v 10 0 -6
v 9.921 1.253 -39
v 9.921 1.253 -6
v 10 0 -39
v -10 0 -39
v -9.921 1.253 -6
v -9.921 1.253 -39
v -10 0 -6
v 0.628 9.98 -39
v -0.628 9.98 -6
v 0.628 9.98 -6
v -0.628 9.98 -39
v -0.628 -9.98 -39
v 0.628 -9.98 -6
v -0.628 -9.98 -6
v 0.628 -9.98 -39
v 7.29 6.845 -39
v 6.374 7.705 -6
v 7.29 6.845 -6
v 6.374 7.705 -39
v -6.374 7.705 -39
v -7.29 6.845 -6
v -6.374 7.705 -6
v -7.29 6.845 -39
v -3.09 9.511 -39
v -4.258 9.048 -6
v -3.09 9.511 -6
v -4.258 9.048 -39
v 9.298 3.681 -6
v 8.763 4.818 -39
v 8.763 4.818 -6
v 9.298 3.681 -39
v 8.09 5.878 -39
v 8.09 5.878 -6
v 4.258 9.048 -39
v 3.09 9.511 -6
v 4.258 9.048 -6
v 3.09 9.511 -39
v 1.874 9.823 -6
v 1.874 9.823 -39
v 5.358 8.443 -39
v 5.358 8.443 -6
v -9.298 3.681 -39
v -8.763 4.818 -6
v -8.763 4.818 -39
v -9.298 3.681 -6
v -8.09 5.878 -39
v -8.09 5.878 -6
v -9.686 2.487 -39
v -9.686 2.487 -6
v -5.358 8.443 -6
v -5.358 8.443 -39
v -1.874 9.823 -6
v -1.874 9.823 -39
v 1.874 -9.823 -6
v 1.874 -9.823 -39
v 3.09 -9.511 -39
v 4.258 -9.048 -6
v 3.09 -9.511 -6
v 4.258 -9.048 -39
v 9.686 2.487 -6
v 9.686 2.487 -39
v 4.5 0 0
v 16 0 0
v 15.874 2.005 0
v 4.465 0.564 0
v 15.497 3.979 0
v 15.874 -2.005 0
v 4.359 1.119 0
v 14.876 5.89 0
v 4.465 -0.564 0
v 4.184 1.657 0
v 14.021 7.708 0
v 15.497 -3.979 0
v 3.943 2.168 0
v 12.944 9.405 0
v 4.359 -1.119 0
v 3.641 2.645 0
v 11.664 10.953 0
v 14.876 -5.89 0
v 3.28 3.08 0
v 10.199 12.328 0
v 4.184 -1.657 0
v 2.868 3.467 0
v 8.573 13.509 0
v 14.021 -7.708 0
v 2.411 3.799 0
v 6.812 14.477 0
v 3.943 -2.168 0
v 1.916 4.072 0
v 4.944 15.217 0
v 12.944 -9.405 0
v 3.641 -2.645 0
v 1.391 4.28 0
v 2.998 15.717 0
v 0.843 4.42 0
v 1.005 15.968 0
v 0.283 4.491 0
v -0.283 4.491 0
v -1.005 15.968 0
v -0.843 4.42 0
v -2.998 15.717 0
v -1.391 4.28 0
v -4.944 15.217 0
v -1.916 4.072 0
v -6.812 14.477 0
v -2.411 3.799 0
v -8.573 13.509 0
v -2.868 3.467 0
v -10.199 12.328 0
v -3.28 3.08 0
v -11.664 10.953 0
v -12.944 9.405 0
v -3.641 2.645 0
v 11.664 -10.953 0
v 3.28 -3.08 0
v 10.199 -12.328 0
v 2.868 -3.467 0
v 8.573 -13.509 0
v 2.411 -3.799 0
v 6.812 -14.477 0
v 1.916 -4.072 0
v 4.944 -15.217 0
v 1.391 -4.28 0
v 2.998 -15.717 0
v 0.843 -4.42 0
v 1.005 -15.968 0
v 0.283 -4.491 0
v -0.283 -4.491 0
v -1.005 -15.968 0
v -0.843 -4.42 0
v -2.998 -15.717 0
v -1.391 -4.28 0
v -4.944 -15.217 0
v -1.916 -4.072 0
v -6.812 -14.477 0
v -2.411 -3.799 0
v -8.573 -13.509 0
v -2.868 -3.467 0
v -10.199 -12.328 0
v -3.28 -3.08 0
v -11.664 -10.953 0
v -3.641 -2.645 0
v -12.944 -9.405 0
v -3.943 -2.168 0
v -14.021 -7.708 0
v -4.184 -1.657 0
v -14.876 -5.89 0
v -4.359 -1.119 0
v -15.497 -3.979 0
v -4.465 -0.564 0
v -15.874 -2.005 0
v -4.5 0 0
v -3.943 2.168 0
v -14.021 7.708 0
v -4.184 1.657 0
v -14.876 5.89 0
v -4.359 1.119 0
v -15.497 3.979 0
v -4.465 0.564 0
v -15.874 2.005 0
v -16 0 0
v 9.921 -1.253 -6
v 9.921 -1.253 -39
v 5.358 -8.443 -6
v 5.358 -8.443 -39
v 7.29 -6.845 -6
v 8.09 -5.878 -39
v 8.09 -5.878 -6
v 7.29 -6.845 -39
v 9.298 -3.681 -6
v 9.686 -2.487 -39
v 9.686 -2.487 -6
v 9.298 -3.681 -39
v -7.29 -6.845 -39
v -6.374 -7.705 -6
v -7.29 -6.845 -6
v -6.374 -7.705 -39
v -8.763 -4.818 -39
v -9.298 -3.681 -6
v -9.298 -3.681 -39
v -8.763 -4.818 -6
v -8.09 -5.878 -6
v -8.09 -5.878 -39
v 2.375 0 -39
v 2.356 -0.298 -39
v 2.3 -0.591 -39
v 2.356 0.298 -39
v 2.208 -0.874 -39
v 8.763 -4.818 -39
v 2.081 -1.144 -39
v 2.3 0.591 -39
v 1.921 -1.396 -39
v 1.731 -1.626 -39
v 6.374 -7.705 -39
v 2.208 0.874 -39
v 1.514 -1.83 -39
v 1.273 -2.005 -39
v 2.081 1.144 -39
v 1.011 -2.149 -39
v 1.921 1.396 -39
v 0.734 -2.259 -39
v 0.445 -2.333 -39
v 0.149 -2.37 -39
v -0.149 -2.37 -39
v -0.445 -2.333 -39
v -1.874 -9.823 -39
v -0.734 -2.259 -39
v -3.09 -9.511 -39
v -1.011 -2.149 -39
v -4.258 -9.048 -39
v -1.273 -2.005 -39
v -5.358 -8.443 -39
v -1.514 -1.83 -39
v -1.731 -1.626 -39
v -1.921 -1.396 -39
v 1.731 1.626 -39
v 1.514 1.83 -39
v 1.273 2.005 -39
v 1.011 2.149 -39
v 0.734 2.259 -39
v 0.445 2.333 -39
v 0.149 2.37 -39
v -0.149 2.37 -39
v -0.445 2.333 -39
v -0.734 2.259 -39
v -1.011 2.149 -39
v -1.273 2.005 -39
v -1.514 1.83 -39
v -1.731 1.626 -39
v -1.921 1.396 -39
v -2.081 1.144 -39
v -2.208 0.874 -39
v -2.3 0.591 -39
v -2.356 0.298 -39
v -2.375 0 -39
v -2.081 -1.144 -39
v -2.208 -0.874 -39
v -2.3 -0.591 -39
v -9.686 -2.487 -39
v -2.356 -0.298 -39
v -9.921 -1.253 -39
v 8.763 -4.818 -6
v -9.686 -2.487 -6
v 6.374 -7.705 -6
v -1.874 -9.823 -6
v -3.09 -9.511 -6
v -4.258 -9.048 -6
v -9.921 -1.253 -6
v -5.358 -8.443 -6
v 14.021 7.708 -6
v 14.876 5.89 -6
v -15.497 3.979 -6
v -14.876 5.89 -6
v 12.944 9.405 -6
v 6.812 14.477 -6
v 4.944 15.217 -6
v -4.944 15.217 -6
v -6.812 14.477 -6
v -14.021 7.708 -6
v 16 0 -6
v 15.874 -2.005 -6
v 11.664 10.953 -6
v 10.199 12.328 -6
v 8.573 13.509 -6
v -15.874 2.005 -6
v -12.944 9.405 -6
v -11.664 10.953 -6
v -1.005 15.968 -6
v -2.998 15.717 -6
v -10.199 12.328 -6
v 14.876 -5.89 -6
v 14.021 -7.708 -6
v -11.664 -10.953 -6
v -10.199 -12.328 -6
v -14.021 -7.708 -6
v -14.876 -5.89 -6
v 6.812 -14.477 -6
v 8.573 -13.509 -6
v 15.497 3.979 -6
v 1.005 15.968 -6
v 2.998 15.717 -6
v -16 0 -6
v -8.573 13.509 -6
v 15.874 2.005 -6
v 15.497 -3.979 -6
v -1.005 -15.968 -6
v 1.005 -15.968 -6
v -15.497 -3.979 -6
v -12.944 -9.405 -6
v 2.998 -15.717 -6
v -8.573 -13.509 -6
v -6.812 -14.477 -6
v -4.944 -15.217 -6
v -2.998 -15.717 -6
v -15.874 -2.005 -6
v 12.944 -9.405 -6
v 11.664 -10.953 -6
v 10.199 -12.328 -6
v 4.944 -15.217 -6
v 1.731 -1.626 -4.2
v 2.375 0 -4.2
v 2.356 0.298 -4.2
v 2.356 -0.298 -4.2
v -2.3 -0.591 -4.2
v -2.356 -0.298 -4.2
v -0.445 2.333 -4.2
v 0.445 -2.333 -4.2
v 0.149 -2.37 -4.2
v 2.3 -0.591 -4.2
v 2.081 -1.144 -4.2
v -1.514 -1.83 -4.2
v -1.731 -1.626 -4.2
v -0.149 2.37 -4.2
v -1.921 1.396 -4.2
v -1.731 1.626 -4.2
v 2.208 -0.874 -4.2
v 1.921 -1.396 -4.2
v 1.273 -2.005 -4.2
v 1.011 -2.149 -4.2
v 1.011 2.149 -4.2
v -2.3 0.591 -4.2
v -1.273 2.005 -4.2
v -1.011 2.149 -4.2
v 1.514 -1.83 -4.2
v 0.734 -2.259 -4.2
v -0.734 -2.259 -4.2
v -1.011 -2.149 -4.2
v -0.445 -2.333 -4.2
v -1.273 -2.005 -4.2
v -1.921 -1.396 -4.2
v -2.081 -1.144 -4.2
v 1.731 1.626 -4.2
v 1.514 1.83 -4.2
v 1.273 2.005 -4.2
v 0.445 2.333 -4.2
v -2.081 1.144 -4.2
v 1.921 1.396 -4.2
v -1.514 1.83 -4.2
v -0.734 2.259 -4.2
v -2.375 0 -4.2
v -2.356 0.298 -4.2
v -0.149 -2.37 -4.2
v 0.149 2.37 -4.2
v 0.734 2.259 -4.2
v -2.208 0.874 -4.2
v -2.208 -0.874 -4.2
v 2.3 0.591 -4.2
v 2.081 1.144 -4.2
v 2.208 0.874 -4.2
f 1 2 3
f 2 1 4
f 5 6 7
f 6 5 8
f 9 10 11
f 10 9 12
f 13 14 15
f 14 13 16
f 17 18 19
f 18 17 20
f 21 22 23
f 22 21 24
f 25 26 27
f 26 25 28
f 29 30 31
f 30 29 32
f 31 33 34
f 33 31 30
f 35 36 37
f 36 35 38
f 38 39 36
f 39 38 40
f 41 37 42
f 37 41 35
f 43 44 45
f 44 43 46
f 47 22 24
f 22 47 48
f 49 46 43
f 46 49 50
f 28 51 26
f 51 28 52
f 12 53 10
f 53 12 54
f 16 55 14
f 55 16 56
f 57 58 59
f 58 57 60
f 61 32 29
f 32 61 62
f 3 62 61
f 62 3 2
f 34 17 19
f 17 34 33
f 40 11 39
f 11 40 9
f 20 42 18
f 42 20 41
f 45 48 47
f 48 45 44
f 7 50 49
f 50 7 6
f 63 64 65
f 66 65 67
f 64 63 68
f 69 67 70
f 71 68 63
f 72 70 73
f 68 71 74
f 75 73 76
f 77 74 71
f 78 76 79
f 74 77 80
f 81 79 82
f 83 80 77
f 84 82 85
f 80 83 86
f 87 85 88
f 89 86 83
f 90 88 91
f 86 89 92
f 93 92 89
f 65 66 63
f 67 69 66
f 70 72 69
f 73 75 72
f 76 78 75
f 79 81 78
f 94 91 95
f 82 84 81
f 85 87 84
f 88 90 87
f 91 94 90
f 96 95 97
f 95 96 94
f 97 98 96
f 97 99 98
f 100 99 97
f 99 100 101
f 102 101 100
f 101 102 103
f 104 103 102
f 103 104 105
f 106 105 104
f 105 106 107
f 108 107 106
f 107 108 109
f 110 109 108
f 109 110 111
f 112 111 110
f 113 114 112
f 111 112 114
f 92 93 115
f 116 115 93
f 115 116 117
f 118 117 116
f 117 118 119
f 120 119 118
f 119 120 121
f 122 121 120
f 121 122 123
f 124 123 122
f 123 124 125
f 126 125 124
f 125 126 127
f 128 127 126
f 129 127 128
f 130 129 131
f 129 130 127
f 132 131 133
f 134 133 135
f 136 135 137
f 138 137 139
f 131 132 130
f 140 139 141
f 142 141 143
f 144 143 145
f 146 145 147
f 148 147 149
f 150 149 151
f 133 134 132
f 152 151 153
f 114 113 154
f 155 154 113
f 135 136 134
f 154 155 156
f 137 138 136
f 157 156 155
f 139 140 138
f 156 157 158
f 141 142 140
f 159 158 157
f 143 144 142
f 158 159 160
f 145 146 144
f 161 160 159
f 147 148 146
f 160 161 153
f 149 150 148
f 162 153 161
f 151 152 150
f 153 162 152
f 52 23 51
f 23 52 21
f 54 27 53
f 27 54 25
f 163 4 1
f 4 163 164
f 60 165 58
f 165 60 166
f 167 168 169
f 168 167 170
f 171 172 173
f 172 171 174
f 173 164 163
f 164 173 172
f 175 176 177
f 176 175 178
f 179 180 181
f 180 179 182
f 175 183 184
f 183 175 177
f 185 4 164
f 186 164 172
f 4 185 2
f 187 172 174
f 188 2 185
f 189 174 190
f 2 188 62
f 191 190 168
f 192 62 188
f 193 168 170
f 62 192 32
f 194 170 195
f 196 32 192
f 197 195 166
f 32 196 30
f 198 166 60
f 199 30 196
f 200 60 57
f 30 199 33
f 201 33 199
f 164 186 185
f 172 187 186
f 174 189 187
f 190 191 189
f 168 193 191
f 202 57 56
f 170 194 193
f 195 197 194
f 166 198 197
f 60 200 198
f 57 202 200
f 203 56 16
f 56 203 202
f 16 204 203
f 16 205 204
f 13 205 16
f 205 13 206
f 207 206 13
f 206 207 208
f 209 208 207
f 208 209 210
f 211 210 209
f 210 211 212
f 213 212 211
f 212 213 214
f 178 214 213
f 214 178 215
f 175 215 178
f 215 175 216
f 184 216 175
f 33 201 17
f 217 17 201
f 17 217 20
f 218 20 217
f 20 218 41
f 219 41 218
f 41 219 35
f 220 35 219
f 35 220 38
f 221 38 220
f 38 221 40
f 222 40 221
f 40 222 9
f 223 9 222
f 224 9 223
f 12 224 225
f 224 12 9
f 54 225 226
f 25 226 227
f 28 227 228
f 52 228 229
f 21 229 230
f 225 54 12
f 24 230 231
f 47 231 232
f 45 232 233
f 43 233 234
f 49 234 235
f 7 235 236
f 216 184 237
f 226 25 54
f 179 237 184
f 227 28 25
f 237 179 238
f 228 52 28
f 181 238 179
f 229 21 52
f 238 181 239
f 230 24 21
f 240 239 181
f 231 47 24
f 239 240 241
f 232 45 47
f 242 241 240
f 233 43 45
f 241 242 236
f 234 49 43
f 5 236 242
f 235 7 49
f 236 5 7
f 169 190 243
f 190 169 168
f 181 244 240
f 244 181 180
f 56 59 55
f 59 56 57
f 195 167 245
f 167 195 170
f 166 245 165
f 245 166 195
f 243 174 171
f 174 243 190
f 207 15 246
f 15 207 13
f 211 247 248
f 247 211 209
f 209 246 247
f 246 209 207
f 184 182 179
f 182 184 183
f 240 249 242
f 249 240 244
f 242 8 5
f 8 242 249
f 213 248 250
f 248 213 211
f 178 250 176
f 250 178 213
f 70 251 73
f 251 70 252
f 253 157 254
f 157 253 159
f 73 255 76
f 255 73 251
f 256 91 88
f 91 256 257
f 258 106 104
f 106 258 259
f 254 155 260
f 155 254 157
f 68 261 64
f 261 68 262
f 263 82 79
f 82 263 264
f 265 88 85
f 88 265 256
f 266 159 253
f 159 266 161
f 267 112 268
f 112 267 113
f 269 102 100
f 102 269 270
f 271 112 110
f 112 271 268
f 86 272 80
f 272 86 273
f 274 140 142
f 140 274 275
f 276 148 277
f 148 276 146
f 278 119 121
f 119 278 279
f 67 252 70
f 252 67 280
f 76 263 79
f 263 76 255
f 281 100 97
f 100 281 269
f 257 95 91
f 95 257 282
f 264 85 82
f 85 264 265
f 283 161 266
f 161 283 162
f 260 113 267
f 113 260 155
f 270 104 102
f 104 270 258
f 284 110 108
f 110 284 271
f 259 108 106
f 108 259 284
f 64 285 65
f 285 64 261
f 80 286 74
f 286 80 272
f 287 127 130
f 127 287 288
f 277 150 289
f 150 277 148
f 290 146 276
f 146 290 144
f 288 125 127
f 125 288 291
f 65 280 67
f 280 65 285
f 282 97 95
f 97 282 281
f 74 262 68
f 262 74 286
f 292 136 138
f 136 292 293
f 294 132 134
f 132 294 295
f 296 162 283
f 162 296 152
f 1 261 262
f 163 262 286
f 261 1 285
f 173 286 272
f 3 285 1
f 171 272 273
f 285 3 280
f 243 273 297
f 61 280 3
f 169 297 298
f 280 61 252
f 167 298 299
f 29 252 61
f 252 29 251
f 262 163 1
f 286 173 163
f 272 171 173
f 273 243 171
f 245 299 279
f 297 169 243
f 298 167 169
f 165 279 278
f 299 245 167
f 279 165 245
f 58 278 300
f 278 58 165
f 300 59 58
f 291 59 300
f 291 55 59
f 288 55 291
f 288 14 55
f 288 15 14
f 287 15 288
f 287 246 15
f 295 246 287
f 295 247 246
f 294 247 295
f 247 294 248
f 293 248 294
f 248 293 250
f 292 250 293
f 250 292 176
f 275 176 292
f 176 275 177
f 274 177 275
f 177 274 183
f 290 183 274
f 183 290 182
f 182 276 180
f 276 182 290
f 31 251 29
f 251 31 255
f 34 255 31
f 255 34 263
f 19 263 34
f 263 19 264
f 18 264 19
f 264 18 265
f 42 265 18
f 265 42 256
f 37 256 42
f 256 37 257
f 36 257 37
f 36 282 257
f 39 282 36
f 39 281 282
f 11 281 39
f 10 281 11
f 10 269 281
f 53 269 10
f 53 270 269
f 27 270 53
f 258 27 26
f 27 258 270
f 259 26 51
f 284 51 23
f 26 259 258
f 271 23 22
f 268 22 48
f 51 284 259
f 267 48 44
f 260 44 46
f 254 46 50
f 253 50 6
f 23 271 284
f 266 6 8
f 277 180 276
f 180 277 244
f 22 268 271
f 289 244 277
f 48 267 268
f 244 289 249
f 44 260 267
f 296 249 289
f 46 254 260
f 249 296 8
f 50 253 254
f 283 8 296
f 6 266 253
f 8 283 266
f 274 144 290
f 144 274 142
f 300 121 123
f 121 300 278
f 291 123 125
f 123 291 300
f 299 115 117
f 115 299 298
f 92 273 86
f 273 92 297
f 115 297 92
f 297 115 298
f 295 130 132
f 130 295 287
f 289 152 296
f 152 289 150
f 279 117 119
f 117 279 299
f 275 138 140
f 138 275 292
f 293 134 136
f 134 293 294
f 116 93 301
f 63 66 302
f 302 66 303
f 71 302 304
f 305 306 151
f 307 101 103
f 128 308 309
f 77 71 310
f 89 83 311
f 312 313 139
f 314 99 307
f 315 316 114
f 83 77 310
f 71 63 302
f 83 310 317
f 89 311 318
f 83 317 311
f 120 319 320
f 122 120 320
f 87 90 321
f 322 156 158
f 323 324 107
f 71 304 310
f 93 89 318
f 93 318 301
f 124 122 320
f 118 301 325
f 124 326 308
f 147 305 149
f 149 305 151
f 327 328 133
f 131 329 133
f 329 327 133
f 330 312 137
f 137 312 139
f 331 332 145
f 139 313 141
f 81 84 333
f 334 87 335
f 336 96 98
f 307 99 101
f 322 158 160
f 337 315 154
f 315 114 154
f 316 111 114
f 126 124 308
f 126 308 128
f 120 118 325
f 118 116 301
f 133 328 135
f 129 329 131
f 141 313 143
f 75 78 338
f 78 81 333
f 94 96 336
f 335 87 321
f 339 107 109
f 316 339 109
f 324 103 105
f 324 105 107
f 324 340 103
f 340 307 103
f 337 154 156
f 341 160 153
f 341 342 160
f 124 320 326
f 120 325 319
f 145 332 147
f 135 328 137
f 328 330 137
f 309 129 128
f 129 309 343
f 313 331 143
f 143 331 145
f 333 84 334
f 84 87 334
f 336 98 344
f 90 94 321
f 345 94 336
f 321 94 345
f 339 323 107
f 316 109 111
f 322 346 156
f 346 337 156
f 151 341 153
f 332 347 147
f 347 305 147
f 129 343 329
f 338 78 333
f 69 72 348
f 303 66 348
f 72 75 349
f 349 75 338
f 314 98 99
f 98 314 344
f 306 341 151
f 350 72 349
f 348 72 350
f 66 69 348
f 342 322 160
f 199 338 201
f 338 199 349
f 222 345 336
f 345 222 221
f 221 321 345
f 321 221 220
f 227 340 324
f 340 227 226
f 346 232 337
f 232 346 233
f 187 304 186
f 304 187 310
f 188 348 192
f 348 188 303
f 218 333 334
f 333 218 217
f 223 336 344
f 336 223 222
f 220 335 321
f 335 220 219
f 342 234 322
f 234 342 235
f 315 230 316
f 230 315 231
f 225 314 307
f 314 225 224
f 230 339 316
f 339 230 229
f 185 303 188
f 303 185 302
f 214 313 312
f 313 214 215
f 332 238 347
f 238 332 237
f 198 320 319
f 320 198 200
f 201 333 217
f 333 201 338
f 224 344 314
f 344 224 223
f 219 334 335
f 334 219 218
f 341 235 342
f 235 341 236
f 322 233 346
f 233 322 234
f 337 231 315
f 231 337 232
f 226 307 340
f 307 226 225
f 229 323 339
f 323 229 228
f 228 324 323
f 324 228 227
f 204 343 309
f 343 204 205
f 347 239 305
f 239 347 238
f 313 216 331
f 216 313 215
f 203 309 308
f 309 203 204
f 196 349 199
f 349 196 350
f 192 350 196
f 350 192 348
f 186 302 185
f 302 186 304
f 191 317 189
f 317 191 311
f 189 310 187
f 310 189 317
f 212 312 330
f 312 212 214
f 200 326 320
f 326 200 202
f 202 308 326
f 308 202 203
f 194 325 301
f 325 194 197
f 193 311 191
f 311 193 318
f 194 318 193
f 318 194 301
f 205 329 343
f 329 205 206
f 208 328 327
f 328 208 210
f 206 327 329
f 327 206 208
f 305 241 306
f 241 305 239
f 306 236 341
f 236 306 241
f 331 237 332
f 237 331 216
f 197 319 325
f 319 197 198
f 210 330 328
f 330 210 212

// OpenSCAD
$fn = 50;


difference() {
	union() {
		translate(v = [0, 0, -39.0000000000]) {
			cylinder(h = 39, r = 10.0000000000);
		}
		translate(v = [0, 0, -6.0000000000]) {
			cylinder(h = 6, r = 16.0000000000);
		}
	}
	union() {
		translate(v = [0, 0, 0]) {
			rotate(a = [0, 0, 0]) {
				difference() {
					union() {
						#translate(v = [0, 0, -39.0000000000]) {
							cylinder(h = 39, r = 2.2500000000);
						}
						#translate(v = [0, 0, -4.2000000000]) {
							cylinder(h = 4.2000000000, r = 10.0000000000, r1 = 2.3750000000, r2 = 4.5000000000);
						}
						#translate(v = [0, 0, -39.0000000000]) {
							cylinder(h = 39, r = 2.3750000000);
						}
						#translate(v = [0, 0, -39.0000000000]) {
							cylinder(h = 39, r = 2.2500000000);
						}
					}
					union();
				}
			}
		}
	}
}
